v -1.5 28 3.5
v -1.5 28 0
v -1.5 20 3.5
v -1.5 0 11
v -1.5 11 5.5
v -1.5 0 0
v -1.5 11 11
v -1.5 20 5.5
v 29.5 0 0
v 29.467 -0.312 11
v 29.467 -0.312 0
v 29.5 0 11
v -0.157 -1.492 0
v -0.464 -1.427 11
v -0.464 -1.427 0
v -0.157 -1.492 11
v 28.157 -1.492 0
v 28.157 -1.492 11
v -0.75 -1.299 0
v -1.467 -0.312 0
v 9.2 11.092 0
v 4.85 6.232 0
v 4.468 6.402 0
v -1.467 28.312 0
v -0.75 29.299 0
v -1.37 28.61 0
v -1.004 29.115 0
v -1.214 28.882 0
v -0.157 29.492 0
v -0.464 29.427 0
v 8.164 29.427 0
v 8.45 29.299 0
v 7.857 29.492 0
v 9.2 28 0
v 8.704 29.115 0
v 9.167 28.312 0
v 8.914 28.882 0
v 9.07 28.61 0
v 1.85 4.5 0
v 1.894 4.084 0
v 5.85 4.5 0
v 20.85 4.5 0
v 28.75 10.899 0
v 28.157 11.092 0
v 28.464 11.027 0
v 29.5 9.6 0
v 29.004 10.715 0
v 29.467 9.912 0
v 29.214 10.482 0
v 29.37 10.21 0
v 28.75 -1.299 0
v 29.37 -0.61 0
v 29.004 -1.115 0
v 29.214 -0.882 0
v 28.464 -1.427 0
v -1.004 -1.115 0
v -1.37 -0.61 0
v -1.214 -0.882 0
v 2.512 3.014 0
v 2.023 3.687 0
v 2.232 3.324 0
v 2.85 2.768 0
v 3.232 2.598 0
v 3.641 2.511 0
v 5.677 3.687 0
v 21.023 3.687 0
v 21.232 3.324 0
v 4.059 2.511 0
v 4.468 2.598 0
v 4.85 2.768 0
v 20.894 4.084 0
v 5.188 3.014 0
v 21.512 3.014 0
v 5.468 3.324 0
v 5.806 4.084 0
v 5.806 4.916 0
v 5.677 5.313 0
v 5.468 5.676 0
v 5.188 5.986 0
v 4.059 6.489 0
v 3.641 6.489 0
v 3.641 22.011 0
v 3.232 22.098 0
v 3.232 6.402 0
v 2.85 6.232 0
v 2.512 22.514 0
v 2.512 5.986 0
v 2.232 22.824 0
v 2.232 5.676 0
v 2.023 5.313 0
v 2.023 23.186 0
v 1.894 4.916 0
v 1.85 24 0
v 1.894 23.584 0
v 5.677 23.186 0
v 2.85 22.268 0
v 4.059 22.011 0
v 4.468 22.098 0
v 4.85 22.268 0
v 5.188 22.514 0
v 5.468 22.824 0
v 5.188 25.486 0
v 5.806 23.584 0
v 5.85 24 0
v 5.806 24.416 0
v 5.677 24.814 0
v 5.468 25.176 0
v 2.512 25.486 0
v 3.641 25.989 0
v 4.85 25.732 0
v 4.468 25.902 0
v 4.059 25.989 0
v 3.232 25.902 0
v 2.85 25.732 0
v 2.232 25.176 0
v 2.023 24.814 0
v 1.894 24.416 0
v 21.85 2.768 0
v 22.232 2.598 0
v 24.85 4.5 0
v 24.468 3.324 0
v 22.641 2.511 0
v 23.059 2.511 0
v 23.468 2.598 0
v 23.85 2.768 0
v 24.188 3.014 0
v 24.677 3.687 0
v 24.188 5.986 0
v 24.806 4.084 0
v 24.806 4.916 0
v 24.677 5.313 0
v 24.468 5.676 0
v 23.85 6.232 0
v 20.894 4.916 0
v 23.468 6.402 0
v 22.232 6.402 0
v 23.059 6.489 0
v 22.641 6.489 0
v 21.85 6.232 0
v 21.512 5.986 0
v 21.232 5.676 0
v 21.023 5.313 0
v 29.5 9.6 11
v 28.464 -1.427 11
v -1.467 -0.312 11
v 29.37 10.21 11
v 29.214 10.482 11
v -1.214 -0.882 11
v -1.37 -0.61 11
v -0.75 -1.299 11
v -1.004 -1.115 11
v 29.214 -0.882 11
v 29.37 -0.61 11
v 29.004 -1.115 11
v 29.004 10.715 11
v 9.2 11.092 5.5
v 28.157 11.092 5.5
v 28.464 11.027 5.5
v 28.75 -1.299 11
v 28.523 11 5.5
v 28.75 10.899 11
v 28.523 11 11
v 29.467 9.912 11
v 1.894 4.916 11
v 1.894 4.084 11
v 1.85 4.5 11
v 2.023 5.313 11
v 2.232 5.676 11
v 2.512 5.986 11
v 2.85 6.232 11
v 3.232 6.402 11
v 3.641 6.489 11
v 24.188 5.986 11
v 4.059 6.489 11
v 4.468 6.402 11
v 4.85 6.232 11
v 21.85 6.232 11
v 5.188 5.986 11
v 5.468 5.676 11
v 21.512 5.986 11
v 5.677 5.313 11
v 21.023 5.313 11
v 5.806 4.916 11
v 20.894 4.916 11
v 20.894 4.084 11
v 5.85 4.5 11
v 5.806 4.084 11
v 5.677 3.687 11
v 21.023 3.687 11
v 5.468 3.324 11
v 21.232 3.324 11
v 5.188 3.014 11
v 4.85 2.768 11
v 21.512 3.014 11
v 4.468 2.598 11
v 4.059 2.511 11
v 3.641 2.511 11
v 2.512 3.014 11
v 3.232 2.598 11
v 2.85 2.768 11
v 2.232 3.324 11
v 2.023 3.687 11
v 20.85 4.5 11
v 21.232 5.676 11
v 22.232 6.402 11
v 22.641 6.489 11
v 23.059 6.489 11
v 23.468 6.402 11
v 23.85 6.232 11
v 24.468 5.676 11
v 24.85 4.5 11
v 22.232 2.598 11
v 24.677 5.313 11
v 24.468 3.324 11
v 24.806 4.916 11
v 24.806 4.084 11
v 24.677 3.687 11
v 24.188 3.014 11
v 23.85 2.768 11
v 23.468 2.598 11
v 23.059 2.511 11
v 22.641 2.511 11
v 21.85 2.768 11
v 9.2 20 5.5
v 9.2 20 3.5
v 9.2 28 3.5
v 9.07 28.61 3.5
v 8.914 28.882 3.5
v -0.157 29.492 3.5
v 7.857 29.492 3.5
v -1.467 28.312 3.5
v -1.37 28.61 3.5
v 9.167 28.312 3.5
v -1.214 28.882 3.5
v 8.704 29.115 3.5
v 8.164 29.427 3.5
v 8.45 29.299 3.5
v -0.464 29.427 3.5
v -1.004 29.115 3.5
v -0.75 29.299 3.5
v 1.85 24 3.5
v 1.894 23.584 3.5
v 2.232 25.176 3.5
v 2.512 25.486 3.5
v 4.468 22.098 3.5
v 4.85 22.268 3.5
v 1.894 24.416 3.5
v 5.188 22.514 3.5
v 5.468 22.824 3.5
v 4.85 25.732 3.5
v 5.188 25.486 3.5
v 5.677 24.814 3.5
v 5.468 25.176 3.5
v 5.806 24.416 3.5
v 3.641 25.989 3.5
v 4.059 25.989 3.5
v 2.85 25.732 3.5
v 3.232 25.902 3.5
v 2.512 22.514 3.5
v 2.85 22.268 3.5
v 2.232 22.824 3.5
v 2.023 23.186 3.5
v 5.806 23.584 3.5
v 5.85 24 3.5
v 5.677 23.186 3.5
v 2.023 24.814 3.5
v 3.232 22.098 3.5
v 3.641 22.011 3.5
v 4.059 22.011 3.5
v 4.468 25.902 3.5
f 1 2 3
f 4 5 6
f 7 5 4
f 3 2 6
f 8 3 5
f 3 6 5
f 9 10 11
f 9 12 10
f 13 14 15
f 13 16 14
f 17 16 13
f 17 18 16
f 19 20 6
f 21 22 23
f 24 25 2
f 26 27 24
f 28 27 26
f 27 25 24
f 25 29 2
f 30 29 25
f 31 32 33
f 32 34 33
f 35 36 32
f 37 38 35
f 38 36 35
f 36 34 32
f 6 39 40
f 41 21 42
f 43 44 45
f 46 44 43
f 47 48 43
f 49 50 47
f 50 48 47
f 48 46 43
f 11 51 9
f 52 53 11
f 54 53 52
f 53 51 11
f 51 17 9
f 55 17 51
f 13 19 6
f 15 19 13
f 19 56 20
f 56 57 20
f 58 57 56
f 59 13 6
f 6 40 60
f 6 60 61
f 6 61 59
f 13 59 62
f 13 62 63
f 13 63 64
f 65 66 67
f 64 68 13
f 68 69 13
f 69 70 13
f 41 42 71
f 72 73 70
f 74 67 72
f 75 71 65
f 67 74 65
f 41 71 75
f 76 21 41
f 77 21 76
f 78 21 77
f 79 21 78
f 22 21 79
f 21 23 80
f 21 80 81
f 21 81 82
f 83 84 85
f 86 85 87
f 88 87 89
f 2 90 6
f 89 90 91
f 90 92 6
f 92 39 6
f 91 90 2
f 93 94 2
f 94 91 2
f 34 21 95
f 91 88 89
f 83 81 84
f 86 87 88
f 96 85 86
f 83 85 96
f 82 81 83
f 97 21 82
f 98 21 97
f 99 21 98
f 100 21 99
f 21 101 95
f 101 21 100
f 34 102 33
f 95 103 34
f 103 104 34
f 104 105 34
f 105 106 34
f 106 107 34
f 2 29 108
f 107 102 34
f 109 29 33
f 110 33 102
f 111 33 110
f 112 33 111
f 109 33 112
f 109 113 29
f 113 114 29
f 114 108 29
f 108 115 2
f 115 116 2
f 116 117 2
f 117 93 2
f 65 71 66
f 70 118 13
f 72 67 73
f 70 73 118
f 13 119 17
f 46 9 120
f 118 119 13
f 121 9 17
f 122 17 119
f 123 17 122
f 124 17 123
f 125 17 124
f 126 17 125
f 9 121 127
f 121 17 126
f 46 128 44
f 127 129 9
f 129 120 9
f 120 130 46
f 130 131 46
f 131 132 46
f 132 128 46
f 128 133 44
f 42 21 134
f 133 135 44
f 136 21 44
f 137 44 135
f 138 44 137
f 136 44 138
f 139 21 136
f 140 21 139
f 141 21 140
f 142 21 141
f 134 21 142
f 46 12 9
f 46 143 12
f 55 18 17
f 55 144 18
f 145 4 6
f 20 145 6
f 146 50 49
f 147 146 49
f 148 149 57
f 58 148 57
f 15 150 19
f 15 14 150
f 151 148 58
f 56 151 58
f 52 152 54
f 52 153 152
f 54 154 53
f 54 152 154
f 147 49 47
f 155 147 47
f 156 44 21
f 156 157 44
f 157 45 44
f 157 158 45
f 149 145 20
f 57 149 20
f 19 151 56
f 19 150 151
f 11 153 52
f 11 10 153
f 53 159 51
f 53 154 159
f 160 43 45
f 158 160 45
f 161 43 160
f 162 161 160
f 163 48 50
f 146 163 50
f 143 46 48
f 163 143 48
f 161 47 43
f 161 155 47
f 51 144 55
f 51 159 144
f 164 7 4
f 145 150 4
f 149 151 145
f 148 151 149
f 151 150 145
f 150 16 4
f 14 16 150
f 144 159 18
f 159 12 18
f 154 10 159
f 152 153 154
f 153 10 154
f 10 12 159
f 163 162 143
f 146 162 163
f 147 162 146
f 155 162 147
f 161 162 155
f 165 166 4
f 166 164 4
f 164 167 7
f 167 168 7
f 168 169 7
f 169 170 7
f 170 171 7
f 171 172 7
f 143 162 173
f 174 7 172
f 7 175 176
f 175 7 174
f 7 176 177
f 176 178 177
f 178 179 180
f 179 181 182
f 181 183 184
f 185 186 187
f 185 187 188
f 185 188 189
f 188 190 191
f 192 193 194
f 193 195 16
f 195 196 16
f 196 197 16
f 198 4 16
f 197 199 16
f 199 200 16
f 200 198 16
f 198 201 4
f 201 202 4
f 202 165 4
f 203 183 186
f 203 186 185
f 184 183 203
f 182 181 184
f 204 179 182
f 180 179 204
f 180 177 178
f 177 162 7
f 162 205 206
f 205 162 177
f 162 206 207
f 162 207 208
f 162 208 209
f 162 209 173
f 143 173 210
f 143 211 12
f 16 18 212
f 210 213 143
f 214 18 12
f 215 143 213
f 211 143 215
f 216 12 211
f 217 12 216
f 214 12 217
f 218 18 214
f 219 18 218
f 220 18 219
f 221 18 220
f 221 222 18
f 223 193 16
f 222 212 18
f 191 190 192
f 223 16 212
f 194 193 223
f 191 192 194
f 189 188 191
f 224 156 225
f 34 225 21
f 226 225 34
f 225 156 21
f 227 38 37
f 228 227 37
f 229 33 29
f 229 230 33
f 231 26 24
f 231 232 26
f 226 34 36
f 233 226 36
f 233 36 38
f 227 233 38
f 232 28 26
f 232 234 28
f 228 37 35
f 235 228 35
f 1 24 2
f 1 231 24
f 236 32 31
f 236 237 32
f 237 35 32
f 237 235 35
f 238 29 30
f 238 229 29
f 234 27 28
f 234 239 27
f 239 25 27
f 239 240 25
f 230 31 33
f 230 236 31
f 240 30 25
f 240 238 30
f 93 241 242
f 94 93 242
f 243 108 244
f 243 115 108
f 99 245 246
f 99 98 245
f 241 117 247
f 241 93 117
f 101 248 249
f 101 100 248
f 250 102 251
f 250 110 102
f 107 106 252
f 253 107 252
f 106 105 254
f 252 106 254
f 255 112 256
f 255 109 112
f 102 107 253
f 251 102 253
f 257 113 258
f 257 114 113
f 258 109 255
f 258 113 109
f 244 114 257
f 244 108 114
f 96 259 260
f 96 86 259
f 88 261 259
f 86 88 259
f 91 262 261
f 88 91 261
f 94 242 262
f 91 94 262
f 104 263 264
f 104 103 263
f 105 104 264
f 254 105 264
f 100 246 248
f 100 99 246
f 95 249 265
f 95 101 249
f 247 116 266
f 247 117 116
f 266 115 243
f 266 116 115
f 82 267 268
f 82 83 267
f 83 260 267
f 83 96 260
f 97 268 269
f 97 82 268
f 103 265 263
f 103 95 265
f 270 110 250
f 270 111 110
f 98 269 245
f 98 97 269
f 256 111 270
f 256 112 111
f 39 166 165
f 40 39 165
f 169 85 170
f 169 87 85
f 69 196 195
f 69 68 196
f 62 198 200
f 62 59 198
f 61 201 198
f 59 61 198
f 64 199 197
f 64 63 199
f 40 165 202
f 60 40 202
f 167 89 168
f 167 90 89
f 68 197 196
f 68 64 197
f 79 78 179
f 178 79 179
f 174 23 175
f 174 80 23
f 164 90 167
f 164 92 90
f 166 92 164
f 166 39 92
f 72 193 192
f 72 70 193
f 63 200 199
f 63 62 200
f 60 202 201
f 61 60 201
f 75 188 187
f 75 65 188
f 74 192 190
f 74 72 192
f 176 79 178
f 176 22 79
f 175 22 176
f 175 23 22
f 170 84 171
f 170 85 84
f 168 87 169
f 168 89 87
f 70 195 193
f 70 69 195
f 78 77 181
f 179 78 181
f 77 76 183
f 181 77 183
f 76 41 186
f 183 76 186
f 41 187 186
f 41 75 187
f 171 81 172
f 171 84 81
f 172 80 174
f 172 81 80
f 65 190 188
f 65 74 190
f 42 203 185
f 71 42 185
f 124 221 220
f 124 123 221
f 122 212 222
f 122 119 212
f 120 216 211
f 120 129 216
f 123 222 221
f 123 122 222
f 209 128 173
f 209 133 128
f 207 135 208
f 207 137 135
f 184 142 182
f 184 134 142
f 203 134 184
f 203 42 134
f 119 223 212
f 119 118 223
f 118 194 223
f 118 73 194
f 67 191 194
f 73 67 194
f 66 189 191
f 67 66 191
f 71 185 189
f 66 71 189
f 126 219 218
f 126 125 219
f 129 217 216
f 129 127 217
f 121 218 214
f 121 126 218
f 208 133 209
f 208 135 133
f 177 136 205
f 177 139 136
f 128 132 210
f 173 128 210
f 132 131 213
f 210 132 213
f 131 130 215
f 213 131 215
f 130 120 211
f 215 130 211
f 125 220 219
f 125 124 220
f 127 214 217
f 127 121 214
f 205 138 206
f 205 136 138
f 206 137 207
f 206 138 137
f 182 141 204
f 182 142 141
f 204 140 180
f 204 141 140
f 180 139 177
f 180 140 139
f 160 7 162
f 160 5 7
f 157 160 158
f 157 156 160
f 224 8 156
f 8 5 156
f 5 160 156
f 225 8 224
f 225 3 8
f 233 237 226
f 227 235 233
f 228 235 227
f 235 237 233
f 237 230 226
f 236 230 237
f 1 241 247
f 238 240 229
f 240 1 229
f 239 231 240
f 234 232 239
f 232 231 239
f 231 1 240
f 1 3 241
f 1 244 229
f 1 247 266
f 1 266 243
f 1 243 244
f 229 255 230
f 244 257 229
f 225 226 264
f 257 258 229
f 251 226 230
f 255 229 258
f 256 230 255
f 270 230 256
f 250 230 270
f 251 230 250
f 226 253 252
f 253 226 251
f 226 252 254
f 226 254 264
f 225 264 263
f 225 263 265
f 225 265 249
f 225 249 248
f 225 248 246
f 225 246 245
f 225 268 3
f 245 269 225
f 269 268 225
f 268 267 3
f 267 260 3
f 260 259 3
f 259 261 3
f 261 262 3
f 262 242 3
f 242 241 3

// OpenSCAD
//endstop mount for kossel 2020

$fn=30;

screw_diameter = 4;
screw_head = 2;
thickness = 5.5;


difference(){
    minkowski(){
        union(){
            cube([7.7,28,thickness]);
            cube([28,9.6,thickness*2]);
            }
            cylinder(h=thickness,d=3);
        }
        
    translate([(7.7/2),24,-1]) cylinder(h=thickness*3,d=screw_diameter);
        
    translate([(7.7/2),4.5,-1]) cylinder(h=thickness*3,d=screw_diameter);
    translate([(7.7/2)+19,4.5,-1]) cylinder(h=thickness*3,d=screw_diameter);
        
    //remove height added by minkowski sum
    translate([-10,-10,thickness*2]) cube(500,500,500);
    translate([-10,11,thickness]) cube(500,500,500);
    translate([-10,20,thickness-screw_head]) cube(500,500,500);
}
